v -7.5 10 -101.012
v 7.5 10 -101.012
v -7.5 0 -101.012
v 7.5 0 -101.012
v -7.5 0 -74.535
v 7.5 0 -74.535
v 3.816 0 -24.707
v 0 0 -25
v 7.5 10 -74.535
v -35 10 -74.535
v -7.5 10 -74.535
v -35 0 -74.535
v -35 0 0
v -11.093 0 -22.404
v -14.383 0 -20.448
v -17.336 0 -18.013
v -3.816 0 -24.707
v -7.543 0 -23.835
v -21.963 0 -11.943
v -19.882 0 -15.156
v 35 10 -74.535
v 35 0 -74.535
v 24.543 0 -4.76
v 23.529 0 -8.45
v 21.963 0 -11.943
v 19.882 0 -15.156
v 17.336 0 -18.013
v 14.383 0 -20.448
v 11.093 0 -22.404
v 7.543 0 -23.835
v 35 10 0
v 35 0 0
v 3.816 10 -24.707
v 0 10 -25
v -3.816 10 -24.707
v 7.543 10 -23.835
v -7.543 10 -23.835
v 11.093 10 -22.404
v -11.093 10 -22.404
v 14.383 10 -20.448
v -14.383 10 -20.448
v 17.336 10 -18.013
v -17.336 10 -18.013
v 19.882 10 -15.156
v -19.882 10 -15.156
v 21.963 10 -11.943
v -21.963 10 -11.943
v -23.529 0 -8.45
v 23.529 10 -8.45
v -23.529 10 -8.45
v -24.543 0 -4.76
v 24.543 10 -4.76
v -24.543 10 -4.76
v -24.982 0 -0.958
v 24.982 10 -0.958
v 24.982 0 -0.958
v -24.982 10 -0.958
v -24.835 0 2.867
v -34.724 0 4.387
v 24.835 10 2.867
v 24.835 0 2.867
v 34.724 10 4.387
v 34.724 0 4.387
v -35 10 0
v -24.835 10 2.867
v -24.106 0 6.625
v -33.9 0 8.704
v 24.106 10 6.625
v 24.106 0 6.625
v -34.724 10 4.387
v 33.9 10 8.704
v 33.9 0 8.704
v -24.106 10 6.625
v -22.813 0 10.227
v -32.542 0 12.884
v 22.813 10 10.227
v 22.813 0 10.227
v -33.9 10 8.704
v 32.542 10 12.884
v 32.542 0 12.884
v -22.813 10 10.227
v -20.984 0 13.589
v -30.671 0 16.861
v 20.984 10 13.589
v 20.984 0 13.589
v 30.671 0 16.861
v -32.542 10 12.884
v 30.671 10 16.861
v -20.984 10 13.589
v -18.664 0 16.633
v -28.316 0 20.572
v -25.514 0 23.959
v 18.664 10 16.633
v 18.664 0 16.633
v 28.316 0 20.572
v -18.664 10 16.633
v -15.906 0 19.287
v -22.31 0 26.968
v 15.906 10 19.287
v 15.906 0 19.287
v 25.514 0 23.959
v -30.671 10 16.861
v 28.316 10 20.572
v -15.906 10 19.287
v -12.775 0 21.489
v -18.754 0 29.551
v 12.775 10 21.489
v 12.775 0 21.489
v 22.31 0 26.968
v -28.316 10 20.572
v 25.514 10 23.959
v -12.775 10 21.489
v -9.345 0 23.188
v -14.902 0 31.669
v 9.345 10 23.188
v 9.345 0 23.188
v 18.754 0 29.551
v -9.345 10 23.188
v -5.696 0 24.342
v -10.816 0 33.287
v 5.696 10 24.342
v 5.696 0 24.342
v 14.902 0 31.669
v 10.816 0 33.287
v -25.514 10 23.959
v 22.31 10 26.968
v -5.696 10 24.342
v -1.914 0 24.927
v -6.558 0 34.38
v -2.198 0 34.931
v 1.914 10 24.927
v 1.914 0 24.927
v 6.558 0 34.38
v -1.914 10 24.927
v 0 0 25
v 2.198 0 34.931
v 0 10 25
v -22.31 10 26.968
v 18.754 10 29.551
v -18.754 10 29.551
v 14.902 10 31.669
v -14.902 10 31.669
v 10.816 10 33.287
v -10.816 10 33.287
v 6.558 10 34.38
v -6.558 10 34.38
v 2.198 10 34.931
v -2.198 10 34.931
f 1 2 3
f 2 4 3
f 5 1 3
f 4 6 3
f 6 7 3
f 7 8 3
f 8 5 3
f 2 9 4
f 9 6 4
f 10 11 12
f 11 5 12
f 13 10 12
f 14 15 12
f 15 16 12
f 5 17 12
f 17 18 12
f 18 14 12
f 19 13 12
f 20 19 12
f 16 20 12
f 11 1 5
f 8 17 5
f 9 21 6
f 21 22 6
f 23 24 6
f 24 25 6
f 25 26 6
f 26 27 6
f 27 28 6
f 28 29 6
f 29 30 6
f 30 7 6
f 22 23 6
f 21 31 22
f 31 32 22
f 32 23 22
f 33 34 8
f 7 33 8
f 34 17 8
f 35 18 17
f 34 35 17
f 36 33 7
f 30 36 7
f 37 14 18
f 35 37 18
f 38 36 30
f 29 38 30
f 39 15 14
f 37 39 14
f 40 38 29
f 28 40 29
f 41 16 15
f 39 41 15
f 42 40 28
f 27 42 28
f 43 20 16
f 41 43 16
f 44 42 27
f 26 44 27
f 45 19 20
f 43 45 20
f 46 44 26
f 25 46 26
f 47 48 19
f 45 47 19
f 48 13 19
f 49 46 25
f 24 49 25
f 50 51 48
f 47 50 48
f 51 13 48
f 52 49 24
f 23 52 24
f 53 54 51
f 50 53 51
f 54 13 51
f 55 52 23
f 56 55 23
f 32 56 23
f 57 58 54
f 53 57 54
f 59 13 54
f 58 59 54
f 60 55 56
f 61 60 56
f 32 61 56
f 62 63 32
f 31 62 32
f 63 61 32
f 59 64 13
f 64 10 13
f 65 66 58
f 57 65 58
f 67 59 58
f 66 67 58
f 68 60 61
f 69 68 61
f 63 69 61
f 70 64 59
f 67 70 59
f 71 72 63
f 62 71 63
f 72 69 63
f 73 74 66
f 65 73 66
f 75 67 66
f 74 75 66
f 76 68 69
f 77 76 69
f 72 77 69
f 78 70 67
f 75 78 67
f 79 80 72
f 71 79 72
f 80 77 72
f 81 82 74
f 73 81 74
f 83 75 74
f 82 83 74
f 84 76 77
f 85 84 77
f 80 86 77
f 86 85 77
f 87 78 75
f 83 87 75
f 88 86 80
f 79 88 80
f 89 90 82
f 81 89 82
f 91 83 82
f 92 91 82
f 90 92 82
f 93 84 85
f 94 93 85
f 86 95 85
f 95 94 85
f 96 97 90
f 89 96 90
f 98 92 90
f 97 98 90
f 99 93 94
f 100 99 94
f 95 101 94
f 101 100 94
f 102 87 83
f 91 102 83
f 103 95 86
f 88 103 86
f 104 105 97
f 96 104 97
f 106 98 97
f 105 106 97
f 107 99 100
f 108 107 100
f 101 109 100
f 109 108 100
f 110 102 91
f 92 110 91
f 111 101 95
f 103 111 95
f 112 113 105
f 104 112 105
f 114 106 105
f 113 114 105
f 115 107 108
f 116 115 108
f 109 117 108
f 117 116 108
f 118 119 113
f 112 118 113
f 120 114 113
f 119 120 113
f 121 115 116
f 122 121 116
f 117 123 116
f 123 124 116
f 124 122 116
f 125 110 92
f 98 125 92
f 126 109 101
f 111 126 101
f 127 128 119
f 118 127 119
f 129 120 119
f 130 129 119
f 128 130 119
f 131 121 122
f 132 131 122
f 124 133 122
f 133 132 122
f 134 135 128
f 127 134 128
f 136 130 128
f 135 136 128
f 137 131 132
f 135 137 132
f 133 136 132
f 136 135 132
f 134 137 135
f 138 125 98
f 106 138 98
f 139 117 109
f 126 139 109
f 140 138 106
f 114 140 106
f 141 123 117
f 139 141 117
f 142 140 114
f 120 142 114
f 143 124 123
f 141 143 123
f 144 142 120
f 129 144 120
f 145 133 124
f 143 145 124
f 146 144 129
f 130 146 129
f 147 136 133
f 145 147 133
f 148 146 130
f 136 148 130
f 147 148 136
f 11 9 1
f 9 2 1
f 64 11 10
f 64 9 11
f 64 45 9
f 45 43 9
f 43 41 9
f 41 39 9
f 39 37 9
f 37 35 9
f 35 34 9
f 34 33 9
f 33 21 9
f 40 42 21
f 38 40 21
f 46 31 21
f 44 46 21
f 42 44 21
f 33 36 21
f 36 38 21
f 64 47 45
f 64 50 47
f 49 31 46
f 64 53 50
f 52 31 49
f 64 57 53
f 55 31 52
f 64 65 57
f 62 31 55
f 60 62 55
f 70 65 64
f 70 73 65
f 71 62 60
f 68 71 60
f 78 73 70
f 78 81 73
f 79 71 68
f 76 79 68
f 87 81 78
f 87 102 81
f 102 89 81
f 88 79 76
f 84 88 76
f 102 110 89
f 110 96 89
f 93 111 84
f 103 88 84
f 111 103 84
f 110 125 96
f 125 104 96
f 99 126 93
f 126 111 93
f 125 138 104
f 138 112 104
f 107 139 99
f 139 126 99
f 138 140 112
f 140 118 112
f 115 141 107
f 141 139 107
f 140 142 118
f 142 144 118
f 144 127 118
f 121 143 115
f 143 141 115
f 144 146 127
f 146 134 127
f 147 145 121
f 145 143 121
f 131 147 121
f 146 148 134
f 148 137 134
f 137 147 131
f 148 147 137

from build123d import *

# Parameters (mm, degrees)
SKETCH1_R           = 25
BOSS_EXTRUDE2_DEPTH = 10


with BuildPart() as part:
    # Sketch1 → Boss-Extrude2 (new body)
    with BuildSketch(Plane(origin=(0, 0, 0), x_dir=(1, 0, 0), z_dir=(0, 1, 0))):
        with BuildLine():
            Line((-35, 74.53460287), (-35, 0))
            ThreePointArc((-35, 0), (0, -35), (35, 0))
            Line((35, 0), (35, 74.53460287))
            Line((35, 74.53460287), (7.5, 74.53460287))
            Line((7.5, 74.53460287), (7.5, 101.011615082))
            Line((7.5, 101.011615082), (-7.5, 101.011615082))
            Line((-7.5, 101.011615082), (-7.5, 74.53460287))
            Line((-7.5, 74.53460287), (-35, 74.53460287))
        make_face()
        Circle(SKETCH1_R, mode=Mode.SUBTRACT)
    extrude(amount=BOSS_EXTRUDE2_DEPTH)


solid = part.part
